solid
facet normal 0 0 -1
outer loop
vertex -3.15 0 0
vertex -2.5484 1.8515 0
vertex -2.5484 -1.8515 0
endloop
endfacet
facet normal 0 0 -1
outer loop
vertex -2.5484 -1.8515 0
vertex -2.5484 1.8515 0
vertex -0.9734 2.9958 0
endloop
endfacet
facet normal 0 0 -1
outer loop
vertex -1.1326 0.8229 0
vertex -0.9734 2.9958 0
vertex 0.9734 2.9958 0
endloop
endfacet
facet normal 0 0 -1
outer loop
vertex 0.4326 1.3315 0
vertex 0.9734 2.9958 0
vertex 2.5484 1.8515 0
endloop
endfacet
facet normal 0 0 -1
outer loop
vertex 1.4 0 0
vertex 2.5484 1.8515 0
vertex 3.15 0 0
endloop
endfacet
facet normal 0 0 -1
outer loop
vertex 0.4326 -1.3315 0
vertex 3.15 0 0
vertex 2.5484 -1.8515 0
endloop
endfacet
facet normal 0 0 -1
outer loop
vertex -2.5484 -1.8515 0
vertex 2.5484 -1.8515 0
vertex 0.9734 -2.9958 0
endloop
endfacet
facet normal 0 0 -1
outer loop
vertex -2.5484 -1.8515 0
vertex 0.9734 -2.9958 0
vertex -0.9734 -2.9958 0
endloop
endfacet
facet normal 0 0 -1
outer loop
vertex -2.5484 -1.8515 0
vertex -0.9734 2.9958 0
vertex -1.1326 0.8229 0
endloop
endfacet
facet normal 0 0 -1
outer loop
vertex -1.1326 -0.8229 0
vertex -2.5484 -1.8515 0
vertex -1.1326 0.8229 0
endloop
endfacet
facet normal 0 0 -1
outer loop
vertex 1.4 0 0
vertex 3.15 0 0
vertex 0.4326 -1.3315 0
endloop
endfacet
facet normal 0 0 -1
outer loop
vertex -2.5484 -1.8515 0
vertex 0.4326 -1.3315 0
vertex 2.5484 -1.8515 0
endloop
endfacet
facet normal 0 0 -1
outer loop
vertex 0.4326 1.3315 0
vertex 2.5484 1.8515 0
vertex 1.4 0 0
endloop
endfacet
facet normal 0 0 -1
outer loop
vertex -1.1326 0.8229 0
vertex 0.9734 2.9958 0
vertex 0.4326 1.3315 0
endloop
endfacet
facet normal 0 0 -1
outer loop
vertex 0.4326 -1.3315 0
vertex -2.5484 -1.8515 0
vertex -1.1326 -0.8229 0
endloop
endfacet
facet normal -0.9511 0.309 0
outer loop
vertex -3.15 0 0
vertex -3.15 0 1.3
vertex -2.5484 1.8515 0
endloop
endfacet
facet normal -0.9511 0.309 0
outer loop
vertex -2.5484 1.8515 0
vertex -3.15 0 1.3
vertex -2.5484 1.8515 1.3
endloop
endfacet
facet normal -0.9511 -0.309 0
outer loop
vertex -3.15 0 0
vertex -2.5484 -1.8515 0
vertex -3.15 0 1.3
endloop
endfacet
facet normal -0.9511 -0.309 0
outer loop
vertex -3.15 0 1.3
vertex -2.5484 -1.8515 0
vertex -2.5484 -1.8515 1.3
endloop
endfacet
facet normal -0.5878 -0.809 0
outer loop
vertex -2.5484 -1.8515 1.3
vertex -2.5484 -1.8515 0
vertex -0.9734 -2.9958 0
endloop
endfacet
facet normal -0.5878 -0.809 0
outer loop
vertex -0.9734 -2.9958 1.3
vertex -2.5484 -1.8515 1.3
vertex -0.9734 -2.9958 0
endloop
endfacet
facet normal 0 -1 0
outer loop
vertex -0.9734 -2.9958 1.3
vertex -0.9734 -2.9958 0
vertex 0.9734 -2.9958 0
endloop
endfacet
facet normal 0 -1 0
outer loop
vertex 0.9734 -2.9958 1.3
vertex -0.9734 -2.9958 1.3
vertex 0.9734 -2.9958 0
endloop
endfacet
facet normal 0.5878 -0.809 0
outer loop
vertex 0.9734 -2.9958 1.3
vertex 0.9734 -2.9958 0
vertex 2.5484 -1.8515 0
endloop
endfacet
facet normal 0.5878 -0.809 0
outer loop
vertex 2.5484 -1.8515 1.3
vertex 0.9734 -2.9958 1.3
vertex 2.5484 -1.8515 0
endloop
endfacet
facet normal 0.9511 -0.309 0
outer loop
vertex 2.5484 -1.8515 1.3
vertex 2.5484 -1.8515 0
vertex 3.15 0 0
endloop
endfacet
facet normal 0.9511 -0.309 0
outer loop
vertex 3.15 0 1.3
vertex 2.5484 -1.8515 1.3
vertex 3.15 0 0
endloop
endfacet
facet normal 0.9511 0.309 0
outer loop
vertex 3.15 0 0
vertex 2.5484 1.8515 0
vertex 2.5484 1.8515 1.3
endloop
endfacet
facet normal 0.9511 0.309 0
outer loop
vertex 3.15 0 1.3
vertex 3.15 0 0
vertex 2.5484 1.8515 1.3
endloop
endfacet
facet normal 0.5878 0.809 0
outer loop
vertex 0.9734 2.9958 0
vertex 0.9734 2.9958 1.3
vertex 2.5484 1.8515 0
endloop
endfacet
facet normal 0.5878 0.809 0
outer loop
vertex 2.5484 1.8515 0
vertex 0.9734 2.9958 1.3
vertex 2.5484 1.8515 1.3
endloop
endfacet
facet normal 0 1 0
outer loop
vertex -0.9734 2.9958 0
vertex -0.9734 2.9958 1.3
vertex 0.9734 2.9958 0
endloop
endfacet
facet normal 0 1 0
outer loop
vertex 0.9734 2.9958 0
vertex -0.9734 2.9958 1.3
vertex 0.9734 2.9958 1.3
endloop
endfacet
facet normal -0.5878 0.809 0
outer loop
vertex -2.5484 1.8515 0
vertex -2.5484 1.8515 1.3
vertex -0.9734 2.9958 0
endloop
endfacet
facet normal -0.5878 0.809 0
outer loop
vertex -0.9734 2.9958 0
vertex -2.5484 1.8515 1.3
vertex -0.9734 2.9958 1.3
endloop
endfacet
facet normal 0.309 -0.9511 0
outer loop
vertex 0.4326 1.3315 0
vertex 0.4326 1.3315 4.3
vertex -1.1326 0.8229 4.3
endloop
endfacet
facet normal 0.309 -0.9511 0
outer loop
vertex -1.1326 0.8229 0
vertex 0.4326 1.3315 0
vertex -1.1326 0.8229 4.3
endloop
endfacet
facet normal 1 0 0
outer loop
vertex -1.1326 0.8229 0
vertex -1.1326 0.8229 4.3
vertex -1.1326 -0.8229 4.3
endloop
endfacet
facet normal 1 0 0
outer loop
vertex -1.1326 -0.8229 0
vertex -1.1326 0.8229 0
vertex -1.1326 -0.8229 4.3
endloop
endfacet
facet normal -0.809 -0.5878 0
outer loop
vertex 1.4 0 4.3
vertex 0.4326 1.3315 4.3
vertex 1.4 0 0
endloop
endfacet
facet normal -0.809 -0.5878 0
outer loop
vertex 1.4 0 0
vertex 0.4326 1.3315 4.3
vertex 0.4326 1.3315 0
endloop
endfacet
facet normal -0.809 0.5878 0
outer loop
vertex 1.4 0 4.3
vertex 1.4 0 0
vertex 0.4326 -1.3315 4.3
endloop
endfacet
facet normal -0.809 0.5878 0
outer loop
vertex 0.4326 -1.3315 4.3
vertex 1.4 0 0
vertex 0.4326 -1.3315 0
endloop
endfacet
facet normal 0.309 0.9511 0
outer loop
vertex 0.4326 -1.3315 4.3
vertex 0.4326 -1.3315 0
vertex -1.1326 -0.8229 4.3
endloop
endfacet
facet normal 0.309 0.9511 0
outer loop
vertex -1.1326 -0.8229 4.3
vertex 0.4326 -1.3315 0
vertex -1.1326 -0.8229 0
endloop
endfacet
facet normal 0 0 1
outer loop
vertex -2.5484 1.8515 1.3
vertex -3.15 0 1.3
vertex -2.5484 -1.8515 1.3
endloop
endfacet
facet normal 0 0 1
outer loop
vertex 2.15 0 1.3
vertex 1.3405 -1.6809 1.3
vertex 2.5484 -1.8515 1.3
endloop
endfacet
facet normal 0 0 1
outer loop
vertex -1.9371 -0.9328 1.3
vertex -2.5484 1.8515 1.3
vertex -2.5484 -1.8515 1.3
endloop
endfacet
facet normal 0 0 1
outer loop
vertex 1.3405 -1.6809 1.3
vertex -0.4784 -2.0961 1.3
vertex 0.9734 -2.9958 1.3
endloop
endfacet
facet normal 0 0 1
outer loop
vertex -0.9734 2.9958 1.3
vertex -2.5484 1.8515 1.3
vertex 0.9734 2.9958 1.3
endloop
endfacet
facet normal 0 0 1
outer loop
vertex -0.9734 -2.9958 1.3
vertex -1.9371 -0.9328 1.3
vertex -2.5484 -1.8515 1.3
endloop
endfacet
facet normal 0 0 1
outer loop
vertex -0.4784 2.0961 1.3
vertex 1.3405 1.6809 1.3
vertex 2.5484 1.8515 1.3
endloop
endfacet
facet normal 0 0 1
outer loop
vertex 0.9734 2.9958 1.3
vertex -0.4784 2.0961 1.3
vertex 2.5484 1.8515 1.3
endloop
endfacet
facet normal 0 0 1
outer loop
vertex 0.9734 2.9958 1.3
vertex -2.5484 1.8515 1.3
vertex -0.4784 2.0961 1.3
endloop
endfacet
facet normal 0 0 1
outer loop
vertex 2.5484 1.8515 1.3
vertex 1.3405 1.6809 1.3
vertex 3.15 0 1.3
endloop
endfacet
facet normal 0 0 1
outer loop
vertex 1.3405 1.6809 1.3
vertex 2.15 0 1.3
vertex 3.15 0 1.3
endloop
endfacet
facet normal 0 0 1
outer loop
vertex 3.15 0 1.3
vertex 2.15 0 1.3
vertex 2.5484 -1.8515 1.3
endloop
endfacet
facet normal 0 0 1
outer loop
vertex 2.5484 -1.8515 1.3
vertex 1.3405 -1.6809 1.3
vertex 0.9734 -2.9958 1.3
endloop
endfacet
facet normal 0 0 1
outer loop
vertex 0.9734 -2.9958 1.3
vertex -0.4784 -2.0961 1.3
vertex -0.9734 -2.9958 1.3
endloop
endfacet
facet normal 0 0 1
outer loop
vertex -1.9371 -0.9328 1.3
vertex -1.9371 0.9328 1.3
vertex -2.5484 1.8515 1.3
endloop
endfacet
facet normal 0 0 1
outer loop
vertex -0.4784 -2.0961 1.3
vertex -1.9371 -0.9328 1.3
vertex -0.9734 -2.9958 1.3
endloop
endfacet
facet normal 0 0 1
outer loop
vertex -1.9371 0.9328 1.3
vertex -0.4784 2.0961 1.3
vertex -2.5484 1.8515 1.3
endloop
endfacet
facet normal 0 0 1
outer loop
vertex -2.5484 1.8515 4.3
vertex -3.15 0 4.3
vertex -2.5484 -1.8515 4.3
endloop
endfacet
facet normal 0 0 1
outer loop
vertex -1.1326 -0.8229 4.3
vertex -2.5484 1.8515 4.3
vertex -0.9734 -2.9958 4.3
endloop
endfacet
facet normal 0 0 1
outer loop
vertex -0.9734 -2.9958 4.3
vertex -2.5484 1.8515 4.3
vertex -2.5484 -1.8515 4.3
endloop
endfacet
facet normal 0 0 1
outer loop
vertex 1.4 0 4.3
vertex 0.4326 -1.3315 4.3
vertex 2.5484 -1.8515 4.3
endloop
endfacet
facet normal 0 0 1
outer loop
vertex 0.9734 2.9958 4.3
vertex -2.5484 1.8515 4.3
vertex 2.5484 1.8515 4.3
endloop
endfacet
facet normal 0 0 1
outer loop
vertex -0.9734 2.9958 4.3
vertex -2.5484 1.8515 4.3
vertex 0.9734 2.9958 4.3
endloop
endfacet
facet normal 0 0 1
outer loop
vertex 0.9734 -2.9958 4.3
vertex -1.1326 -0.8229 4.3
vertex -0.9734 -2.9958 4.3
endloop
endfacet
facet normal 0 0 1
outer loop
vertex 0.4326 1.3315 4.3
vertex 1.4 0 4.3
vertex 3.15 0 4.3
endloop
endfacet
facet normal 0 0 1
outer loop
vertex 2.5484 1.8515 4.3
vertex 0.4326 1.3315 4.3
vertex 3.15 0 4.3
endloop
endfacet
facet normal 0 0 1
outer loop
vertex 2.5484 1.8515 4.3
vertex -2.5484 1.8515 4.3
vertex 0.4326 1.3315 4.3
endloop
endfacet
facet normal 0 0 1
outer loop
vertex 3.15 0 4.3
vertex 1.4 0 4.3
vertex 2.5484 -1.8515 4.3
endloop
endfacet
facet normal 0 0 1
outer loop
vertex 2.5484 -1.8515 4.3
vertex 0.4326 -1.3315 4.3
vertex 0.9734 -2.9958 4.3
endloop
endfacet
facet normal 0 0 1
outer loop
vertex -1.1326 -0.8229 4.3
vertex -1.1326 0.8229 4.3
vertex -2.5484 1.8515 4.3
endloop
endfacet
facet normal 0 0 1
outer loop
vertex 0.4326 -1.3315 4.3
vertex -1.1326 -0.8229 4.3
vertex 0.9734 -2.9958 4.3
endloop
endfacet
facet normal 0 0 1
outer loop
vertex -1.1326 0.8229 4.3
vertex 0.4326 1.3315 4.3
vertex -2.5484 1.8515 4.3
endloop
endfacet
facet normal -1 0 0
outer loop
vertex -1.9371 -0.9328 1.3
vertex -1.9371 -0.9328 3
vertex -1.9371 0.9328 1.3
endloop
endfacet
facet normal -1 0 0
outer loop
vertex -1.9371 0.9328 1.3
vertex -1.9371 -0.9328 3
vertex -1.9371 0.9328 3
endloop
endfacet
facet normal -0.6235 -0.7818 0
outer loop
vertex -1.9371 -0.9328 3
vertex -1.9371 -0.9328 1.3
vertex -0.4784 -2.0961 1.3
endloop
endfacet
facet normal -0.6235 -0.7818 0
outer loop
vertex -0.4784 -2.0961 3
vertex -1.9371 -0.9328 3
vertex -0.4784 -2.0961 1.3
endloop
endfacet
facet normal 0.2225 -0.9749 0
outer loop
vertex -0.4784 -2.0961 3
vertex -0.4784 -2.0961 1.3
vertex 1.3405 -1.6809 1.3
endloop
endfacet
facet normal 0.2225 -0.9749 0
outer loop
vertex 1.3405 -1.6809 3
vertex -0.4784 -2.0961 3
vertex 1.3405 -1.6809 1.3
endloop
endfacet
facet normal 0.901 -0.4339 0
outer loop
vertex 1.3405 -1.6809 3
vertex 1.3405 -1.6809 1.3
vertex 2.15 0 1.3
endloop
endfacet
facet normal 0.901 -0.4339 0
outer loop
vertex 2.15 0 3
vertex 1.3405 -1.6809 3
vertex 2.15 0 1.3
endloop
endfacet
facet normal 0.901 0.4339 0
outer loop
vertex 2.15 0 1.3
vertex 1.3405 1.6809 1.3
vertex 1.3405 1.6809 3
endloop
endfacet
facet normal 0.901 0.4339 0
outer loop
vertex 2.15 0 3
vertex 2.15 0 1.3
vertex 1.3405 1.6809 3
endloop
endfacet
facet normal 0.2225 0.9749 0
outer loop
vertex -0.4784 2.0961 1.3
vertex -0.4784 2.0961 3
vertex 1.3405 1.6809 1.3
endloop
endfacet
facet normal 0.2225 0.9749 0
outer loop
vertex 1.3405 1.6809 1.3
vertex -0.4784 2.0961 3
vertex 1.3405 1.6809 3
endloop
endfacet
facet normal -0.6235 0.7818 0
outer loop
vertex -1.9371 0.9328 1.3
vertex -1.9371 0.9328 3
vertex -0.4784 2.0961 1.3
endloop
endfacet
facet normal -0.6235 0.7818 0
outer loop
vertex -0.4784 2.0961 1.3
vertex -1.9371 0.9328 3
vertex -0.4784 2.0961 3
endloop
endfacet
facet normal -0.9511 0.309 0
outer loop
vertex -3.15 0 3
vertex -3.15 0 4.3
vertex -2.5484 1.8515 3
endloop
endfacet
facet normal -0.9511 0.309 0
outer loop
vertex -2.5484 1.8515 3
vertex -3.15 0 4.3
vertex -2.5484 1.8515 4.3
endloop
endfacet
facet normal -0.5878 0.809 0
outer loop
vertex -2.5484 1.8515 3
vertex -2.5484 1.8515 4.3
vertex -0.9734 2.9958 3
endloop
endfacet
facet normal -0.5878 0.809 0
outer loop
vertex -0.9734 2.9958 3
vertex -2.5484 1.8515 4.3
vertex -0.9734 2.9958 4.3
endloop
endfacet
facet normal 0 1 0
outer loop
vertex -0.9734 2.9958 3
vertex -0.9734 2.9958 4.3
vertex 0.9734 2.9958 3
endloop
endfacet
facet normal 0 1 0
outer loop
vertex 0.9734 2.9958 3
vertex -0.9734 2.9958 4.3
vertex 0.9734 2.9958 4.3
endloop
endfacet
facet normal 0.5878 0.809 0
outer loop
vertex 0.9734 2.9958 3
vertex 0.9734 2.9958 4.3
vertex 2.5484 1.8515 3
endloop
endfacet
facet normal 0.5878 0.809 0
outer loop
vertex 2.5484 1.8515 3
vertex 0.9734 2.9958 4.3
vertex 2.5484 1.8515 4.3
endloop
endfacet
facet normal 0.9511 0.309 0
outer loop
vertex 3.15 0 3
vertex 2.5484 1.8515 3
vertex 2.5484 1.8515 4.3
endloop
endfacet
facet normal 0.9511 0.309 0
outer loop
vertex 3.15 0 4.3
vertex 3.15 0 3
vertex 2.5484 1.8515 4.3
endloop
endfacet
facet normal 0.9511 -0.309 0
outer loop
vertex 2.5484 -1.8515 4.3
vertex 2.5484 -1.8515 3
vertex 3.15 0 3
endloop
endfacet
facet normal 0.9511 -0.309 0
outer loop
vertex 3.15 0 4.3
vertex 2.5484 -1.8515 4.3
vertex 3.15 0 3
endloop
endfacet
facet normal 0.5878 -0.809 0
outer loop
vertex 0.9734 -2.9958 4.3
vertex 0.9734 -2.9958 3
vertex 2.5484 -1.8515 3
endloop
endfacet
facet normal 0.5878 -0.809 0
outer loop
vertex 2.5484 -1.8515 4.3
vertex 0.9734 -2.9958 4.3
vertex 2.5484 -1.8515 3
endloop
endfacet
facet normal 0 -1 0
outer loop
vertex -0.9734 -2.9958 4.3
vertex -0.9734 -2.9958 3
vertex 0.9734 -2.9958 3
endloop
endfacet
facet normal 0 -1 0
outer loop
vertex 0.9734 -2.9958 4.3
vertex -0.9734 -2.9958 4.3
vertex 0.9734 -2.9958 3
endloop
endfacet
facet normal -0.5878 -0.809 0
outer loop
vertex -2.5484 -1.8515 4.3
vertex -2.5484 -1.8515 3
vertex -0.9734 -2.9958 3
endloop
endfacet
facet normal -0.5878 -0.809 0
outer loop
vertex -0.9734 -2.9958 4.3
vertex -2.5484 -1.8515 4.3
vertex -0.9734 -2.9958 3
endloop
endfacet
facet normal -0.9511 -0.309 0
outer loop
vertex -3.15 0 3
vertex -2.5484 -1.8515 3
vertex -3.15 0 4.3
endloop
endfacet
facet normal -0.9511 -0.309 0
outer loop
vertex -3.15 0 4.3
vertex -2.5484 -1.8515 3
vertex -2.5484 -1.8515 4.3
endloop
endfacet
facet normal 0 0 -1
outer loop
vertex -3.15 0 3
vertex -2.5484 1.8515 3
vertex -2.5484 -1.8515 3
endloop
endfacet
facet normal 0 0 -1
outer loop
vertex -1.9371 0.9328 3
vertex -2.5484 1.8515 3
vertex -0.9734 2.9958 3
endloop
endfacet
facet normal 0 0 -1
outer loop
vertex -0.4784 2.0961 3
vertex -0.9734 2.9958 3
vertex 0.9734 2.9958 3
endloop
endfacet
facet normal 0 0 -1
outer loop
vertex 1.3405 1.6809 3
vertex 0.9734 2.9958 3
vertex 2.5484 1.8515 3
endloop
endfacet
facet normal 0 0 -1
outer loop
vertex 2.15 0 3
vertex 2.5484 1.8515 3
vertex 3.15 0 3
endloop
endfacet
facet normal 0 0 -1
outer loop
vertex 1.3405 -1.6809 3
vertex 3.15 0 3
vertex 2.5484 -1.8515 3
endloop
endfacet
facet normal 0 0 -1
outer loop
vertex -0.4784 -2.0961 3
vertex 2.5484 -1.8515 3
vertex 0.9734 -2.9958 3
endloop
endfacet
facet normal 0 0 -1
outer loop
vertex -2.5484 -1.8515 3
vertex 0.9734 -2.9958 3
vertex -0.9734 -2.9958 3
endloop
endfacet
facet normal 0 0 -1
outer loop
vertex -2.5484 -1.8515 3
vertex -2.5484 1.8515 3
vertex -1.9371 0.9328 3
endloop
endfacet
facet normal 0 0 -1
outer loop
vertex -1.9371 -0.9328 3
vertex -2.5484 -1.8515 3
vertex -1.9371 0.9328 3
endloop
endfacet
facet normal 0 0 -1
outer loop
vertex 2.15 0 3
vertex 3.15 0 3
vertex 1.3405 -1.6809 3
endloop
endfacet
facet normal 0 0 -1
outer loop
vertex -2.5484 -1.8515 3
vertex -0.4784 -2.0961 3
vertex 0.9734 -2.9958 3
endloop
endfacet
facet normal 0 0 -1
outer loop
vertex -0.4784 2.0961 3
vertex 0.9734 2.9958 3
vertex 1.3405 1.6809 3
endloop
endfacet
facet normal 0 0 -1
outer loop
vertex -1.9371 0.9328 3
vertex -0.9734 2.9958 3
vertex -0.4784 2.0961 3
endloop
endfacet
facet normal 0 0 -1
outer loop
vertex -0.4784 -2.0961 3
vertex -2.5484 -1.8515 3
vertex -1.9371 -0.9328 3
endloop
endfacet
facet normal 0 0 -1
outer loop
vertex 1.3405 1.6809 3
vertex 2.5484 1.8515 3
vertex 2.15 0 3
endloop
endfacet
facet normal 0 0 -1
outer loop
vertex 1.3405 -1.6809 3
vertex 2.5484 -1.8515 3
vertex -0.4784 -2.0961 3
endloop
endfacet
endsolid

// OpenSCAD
bodydiam=4.3;
holediam=2.8;
topdiam=6.3;
topheight=1.3;
wholeheight=4.3;

module metalfitting (bodydiam=4.3, holediam=2.8, topdiam=6.3, topheight=1.3, wholeheight=4.3)
	{
		difference()
			{
				union()
					{
						cylinder(topheight, topdiam/2, topdiam/2, 0);
						cylinder(wholeheight, bodydiam/2, bodydiam/2, 0);
						translate([0,0,wholeheight-topheight])
							{
								cylinder(topheight, topdiam/2, topdiam/2, 0);
							}
					}
				translate([0,0,-1])
						{
							cylinder(wholeheight+2, holediam/2, holediam/2, 0);
						}
			}
	}
	

metalfitting();			
